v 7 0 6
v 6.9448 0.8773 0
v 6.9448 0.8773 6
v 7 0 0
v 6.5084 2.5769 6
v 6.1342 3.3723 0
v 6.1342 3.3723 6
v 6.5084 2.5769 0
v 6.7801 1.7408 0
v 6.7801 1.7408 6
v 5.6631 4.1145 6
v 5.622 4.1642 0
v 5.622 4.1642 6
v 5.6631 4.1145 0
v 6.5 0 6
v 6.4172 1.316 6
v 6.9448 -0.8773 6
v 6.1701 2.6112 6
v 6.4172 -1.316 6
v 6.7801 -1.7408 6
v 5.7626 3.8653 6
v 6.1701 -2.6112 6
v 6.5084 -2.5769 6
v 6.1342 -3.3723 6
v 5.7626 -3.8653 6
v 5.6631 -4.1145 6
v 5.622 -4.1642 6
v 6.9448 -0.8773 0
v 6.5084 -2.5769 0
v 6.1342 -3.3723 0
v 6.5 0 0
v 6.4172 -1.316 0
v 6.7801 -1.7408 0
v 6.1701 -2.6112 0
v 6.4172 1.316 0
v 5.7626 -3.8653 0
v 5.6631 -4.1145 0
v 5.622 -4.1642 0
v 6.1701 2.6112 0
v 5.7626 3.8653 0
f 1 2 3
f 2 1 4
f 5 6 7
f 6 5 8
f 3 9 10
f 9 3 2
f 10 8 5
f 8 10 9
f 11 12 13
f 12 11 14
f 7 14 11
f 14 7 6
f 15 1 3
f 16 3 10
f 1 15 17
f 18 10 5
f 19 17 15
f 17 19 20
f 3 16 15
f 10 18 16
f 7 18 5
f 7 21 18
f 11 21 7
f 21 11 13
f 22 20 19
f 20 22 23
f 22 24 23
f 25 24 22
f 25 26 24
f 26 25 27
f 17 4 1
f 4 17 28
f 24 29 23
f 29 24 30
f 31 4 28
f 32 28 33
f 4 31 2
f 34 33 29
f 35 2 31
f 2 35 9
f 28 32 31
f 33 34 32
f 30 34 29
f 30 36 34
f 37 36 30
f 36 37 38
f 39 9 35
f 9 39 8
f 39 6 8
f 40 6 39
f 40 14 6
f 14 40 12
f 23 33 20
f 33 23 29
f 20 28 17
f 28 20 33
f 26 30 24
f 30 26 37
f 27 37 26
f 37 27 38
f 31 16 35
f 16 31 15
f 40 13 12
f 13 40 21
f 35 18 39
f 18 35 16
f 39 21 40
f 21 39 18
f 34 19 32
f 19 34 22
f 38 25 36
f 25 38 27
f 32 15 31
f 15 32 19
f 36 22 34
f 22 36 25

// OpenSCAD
$fn = 50;


difference() {
	union() {
		cylinder(h = 6, r = 7.0000000000);
		translate(v = [-7.0000000000, 0, 0]) {
			cylinder(h = 6, r = 7.0000000000);
		}
	}
	union() {
		cylinder(h = 6, r = 3.2500000000);
		cylinder(h = 6, r = 1.8000000000);
		cylinder(h = 6, r = 1.8000000000);
		cylinder(h = 6, r = 1.8000000000);
		translate(v = [-11.5000000000, 0, 0]) {
			hull() {
				translate(v = [-3.7500000000, 0.0000000000, 0]) {
					cylinder(h = 6, r = 10.5000000000);
				}
				translate(v = [3.7500000000, 0.0000000000, 0]) {
					cylinder(h = 6, r = 10.5000000000);
				}
				translate(v = [-3.7500000000, -0.0000000000, 0]) {
					cylinder(h = 6, r = 10.5000000000);
				}
				translate(v = [3.7500000000, -0.0000000000, 0]) {
					cylinder(h = 6, r = 10.5000000000);
				}
			}
		}
		translate(v = [-4.0000000000, 0, 0.0000000000]) {
			cylinder(h = 6, r = 10.5000000000);
		}
	}
}
